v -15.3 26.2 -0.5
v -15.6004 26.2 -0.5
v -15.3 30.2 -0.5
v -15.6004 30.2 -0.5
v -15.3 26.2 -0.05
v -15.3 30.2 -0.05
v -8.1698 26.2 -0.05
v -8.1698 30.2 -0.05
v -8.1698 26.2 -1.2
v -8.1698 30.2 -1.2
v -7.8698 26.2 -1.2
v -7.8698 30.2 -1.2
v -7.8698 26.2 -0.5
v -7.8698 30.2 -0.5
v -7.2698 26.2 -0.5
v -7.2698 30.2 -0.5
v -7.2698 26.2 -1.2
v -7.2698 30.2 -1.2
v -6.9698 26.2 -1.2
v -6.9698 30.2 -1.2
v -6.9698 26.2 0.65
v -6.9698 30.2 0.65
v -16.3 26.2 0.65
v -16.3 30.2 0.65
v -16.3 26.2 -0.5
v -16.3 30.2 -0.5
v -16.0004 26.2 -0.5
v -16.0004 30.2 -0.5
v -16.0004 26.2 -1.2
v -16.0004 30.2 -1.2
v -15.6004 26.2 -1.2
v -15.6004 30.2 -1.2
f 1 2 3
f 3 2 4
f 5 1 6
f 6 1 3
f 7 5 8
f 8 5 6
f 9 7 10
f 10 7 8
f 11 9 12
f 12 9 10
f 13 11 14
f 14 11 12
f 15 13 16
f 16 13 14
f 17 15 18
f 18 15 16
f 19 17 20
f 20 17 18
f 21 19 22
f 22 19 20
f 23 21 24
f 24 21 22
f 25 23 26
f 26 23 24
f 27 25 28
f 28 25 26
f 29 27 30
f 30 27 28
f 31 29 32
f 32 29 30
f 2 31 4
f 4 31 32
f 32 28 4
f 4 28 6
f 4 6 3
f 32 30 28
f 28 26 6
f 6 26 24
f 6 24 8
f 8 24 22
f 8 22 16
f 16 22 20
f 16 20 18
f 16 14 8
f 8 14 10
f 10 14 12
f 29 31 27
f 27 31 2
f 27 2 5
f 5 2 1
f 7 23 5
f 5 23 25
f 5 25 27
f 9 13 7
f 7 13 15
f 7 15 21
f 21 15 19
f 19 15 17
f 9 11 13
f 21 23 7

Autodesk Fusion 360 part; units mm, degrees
sketch "Sketch1" plane through (0, 22, 0) normal (0, 1, 0) x (-1, 0, 0)
  line L0 (11.5698, 0.25) -> (15.3, 0.25)
  line L1 (15.3, 0.25) -> (15.3, -0.5)
  line L2 (15.3, -0.5) -> (15.6004, -0.5)
  line L3 (15.6004, -0.5) -> (15.6004, -1.2)
  line L4 (15.6004, -1.2) -> (16.0004, -1.2)
  line L5 (16.0004, -1.2) -> (16.0004, -0.5)
  line L6 (16.0004, -0.5) -> (16.3, -0.5)
  line L7 (16.3, -0.5) -> (16.3, 1.05)
  line L8 (16.3, 1.05) -> (5, 1.05)
  line L9 (11.5698, -1.2) -> (11.5698, 0.25)
  line L10 (11.5698, -0.6208) -> (11.2698, -0.6208) construction
  line L11 (11.2698, -0.5) -> (11.2698, -1.2)
  line L12 (11.2698, -0.5) -> (10.5698, -0.5)
  line L13 (10.5698, -0.5) -> (10.5698, -1.2)
  line L14 (10.5698, -0.678) -> (10.2698, -0.678) construction
  line L15 (10.2698, 1.05) -> (10.2698, -1.2)
  line L16 (10.2698, 1.05) -> (16.3, 1.05)
  line L17 (16.3, -0.5) -> (16.0004, -0.5)
  line L18 (16.0004, -1.2) -> (15.6004, -1.2)
  line L19 (15.6004, -0.5) -> (15.3, -0.5)
  line L20 (15.3, 0.25) -> (11.5698, 0.25)
  line L21 (11.5698, -1.2) -> (11.2698, -1.2)
  line L22 (11.5698, -1.2) -> (11.2698, -1.2)
  line L23 (11.2698, -0.5) -> (10.5698, -0.5)
  line L24 (10.5698, -1.2) -> (10.2698, -1.2)
  line L25 (10.2698, 1.05) -> (16.3, 1.05)
  line L26 (16.3, -0.5) -> (16.0004, -0.5)
  line L27 (16.0004, -1.2) -> (15.6004, -1.2)
  line L28 (15.6004, -0.5) -> (15.3, -0.5)
  line L29 (15.3, 0.25) -> (11.5698, 0.25)
  dimension "d14" = 0.3
  dimension "d15" = 0.7
  dimension "d16" = 0.3
extrude "Extrude1" add sketch "Sketch1" along normal blind 8.2 makes body 1
copy_body "Body->Comp1" bodies 1 removing the originals makes body 2 in component "Component"
move_face "OffsetFaces1" offset 0.3 1 faces at (-12.8132, 24.7333, 0.25) on bodies 2 in component "Component"
move_face "OffsetFaces2" offset -0.4 1 faces at (-12.2798, 27.4667, 1.05) on bodies 2 in component "Component"
move_face "OffsetFaces3" offset 3.3 1 faces at (-10.2698, 24.7333, 0.0333) on bodies 2 in component "Component"
move_face "OffsetFaces4" offset -3.3 1 faces at (-10.5698, 24.7333, -0.7333) on bodies 2 in component "Component"
move_face "OffsetFaces5" offset 3.3 1 faces at (-11.2698, 24.7333, -0.7333) on bodies 2 in component "Component"
move_face "OffsetFaces6" offset -3.3 1 faces at (-11.5698, 27.4667, -0.8167) on bodies 2 in component "Component"
move_face "OffsetFaces7" offset -4.2 1 faces at (-10.5132, 22, 0.4167) on bodies 2 in component "Component"
move_face "OffsetFaces8" offset -0.1 1 faces at (-8.2698, 28.8667, -0.4333) on bodies 2 in component "Component"
move_face "OffsetFaces9" offset 0.1 1 faces at (-7.9698, 27.5333, -0.7333) on bodies 2 in component "Component"
component "Component" placed x (1, 0, 0) y (0, 1, 0) z (0, 0, 1) at (0, 0, 0)
